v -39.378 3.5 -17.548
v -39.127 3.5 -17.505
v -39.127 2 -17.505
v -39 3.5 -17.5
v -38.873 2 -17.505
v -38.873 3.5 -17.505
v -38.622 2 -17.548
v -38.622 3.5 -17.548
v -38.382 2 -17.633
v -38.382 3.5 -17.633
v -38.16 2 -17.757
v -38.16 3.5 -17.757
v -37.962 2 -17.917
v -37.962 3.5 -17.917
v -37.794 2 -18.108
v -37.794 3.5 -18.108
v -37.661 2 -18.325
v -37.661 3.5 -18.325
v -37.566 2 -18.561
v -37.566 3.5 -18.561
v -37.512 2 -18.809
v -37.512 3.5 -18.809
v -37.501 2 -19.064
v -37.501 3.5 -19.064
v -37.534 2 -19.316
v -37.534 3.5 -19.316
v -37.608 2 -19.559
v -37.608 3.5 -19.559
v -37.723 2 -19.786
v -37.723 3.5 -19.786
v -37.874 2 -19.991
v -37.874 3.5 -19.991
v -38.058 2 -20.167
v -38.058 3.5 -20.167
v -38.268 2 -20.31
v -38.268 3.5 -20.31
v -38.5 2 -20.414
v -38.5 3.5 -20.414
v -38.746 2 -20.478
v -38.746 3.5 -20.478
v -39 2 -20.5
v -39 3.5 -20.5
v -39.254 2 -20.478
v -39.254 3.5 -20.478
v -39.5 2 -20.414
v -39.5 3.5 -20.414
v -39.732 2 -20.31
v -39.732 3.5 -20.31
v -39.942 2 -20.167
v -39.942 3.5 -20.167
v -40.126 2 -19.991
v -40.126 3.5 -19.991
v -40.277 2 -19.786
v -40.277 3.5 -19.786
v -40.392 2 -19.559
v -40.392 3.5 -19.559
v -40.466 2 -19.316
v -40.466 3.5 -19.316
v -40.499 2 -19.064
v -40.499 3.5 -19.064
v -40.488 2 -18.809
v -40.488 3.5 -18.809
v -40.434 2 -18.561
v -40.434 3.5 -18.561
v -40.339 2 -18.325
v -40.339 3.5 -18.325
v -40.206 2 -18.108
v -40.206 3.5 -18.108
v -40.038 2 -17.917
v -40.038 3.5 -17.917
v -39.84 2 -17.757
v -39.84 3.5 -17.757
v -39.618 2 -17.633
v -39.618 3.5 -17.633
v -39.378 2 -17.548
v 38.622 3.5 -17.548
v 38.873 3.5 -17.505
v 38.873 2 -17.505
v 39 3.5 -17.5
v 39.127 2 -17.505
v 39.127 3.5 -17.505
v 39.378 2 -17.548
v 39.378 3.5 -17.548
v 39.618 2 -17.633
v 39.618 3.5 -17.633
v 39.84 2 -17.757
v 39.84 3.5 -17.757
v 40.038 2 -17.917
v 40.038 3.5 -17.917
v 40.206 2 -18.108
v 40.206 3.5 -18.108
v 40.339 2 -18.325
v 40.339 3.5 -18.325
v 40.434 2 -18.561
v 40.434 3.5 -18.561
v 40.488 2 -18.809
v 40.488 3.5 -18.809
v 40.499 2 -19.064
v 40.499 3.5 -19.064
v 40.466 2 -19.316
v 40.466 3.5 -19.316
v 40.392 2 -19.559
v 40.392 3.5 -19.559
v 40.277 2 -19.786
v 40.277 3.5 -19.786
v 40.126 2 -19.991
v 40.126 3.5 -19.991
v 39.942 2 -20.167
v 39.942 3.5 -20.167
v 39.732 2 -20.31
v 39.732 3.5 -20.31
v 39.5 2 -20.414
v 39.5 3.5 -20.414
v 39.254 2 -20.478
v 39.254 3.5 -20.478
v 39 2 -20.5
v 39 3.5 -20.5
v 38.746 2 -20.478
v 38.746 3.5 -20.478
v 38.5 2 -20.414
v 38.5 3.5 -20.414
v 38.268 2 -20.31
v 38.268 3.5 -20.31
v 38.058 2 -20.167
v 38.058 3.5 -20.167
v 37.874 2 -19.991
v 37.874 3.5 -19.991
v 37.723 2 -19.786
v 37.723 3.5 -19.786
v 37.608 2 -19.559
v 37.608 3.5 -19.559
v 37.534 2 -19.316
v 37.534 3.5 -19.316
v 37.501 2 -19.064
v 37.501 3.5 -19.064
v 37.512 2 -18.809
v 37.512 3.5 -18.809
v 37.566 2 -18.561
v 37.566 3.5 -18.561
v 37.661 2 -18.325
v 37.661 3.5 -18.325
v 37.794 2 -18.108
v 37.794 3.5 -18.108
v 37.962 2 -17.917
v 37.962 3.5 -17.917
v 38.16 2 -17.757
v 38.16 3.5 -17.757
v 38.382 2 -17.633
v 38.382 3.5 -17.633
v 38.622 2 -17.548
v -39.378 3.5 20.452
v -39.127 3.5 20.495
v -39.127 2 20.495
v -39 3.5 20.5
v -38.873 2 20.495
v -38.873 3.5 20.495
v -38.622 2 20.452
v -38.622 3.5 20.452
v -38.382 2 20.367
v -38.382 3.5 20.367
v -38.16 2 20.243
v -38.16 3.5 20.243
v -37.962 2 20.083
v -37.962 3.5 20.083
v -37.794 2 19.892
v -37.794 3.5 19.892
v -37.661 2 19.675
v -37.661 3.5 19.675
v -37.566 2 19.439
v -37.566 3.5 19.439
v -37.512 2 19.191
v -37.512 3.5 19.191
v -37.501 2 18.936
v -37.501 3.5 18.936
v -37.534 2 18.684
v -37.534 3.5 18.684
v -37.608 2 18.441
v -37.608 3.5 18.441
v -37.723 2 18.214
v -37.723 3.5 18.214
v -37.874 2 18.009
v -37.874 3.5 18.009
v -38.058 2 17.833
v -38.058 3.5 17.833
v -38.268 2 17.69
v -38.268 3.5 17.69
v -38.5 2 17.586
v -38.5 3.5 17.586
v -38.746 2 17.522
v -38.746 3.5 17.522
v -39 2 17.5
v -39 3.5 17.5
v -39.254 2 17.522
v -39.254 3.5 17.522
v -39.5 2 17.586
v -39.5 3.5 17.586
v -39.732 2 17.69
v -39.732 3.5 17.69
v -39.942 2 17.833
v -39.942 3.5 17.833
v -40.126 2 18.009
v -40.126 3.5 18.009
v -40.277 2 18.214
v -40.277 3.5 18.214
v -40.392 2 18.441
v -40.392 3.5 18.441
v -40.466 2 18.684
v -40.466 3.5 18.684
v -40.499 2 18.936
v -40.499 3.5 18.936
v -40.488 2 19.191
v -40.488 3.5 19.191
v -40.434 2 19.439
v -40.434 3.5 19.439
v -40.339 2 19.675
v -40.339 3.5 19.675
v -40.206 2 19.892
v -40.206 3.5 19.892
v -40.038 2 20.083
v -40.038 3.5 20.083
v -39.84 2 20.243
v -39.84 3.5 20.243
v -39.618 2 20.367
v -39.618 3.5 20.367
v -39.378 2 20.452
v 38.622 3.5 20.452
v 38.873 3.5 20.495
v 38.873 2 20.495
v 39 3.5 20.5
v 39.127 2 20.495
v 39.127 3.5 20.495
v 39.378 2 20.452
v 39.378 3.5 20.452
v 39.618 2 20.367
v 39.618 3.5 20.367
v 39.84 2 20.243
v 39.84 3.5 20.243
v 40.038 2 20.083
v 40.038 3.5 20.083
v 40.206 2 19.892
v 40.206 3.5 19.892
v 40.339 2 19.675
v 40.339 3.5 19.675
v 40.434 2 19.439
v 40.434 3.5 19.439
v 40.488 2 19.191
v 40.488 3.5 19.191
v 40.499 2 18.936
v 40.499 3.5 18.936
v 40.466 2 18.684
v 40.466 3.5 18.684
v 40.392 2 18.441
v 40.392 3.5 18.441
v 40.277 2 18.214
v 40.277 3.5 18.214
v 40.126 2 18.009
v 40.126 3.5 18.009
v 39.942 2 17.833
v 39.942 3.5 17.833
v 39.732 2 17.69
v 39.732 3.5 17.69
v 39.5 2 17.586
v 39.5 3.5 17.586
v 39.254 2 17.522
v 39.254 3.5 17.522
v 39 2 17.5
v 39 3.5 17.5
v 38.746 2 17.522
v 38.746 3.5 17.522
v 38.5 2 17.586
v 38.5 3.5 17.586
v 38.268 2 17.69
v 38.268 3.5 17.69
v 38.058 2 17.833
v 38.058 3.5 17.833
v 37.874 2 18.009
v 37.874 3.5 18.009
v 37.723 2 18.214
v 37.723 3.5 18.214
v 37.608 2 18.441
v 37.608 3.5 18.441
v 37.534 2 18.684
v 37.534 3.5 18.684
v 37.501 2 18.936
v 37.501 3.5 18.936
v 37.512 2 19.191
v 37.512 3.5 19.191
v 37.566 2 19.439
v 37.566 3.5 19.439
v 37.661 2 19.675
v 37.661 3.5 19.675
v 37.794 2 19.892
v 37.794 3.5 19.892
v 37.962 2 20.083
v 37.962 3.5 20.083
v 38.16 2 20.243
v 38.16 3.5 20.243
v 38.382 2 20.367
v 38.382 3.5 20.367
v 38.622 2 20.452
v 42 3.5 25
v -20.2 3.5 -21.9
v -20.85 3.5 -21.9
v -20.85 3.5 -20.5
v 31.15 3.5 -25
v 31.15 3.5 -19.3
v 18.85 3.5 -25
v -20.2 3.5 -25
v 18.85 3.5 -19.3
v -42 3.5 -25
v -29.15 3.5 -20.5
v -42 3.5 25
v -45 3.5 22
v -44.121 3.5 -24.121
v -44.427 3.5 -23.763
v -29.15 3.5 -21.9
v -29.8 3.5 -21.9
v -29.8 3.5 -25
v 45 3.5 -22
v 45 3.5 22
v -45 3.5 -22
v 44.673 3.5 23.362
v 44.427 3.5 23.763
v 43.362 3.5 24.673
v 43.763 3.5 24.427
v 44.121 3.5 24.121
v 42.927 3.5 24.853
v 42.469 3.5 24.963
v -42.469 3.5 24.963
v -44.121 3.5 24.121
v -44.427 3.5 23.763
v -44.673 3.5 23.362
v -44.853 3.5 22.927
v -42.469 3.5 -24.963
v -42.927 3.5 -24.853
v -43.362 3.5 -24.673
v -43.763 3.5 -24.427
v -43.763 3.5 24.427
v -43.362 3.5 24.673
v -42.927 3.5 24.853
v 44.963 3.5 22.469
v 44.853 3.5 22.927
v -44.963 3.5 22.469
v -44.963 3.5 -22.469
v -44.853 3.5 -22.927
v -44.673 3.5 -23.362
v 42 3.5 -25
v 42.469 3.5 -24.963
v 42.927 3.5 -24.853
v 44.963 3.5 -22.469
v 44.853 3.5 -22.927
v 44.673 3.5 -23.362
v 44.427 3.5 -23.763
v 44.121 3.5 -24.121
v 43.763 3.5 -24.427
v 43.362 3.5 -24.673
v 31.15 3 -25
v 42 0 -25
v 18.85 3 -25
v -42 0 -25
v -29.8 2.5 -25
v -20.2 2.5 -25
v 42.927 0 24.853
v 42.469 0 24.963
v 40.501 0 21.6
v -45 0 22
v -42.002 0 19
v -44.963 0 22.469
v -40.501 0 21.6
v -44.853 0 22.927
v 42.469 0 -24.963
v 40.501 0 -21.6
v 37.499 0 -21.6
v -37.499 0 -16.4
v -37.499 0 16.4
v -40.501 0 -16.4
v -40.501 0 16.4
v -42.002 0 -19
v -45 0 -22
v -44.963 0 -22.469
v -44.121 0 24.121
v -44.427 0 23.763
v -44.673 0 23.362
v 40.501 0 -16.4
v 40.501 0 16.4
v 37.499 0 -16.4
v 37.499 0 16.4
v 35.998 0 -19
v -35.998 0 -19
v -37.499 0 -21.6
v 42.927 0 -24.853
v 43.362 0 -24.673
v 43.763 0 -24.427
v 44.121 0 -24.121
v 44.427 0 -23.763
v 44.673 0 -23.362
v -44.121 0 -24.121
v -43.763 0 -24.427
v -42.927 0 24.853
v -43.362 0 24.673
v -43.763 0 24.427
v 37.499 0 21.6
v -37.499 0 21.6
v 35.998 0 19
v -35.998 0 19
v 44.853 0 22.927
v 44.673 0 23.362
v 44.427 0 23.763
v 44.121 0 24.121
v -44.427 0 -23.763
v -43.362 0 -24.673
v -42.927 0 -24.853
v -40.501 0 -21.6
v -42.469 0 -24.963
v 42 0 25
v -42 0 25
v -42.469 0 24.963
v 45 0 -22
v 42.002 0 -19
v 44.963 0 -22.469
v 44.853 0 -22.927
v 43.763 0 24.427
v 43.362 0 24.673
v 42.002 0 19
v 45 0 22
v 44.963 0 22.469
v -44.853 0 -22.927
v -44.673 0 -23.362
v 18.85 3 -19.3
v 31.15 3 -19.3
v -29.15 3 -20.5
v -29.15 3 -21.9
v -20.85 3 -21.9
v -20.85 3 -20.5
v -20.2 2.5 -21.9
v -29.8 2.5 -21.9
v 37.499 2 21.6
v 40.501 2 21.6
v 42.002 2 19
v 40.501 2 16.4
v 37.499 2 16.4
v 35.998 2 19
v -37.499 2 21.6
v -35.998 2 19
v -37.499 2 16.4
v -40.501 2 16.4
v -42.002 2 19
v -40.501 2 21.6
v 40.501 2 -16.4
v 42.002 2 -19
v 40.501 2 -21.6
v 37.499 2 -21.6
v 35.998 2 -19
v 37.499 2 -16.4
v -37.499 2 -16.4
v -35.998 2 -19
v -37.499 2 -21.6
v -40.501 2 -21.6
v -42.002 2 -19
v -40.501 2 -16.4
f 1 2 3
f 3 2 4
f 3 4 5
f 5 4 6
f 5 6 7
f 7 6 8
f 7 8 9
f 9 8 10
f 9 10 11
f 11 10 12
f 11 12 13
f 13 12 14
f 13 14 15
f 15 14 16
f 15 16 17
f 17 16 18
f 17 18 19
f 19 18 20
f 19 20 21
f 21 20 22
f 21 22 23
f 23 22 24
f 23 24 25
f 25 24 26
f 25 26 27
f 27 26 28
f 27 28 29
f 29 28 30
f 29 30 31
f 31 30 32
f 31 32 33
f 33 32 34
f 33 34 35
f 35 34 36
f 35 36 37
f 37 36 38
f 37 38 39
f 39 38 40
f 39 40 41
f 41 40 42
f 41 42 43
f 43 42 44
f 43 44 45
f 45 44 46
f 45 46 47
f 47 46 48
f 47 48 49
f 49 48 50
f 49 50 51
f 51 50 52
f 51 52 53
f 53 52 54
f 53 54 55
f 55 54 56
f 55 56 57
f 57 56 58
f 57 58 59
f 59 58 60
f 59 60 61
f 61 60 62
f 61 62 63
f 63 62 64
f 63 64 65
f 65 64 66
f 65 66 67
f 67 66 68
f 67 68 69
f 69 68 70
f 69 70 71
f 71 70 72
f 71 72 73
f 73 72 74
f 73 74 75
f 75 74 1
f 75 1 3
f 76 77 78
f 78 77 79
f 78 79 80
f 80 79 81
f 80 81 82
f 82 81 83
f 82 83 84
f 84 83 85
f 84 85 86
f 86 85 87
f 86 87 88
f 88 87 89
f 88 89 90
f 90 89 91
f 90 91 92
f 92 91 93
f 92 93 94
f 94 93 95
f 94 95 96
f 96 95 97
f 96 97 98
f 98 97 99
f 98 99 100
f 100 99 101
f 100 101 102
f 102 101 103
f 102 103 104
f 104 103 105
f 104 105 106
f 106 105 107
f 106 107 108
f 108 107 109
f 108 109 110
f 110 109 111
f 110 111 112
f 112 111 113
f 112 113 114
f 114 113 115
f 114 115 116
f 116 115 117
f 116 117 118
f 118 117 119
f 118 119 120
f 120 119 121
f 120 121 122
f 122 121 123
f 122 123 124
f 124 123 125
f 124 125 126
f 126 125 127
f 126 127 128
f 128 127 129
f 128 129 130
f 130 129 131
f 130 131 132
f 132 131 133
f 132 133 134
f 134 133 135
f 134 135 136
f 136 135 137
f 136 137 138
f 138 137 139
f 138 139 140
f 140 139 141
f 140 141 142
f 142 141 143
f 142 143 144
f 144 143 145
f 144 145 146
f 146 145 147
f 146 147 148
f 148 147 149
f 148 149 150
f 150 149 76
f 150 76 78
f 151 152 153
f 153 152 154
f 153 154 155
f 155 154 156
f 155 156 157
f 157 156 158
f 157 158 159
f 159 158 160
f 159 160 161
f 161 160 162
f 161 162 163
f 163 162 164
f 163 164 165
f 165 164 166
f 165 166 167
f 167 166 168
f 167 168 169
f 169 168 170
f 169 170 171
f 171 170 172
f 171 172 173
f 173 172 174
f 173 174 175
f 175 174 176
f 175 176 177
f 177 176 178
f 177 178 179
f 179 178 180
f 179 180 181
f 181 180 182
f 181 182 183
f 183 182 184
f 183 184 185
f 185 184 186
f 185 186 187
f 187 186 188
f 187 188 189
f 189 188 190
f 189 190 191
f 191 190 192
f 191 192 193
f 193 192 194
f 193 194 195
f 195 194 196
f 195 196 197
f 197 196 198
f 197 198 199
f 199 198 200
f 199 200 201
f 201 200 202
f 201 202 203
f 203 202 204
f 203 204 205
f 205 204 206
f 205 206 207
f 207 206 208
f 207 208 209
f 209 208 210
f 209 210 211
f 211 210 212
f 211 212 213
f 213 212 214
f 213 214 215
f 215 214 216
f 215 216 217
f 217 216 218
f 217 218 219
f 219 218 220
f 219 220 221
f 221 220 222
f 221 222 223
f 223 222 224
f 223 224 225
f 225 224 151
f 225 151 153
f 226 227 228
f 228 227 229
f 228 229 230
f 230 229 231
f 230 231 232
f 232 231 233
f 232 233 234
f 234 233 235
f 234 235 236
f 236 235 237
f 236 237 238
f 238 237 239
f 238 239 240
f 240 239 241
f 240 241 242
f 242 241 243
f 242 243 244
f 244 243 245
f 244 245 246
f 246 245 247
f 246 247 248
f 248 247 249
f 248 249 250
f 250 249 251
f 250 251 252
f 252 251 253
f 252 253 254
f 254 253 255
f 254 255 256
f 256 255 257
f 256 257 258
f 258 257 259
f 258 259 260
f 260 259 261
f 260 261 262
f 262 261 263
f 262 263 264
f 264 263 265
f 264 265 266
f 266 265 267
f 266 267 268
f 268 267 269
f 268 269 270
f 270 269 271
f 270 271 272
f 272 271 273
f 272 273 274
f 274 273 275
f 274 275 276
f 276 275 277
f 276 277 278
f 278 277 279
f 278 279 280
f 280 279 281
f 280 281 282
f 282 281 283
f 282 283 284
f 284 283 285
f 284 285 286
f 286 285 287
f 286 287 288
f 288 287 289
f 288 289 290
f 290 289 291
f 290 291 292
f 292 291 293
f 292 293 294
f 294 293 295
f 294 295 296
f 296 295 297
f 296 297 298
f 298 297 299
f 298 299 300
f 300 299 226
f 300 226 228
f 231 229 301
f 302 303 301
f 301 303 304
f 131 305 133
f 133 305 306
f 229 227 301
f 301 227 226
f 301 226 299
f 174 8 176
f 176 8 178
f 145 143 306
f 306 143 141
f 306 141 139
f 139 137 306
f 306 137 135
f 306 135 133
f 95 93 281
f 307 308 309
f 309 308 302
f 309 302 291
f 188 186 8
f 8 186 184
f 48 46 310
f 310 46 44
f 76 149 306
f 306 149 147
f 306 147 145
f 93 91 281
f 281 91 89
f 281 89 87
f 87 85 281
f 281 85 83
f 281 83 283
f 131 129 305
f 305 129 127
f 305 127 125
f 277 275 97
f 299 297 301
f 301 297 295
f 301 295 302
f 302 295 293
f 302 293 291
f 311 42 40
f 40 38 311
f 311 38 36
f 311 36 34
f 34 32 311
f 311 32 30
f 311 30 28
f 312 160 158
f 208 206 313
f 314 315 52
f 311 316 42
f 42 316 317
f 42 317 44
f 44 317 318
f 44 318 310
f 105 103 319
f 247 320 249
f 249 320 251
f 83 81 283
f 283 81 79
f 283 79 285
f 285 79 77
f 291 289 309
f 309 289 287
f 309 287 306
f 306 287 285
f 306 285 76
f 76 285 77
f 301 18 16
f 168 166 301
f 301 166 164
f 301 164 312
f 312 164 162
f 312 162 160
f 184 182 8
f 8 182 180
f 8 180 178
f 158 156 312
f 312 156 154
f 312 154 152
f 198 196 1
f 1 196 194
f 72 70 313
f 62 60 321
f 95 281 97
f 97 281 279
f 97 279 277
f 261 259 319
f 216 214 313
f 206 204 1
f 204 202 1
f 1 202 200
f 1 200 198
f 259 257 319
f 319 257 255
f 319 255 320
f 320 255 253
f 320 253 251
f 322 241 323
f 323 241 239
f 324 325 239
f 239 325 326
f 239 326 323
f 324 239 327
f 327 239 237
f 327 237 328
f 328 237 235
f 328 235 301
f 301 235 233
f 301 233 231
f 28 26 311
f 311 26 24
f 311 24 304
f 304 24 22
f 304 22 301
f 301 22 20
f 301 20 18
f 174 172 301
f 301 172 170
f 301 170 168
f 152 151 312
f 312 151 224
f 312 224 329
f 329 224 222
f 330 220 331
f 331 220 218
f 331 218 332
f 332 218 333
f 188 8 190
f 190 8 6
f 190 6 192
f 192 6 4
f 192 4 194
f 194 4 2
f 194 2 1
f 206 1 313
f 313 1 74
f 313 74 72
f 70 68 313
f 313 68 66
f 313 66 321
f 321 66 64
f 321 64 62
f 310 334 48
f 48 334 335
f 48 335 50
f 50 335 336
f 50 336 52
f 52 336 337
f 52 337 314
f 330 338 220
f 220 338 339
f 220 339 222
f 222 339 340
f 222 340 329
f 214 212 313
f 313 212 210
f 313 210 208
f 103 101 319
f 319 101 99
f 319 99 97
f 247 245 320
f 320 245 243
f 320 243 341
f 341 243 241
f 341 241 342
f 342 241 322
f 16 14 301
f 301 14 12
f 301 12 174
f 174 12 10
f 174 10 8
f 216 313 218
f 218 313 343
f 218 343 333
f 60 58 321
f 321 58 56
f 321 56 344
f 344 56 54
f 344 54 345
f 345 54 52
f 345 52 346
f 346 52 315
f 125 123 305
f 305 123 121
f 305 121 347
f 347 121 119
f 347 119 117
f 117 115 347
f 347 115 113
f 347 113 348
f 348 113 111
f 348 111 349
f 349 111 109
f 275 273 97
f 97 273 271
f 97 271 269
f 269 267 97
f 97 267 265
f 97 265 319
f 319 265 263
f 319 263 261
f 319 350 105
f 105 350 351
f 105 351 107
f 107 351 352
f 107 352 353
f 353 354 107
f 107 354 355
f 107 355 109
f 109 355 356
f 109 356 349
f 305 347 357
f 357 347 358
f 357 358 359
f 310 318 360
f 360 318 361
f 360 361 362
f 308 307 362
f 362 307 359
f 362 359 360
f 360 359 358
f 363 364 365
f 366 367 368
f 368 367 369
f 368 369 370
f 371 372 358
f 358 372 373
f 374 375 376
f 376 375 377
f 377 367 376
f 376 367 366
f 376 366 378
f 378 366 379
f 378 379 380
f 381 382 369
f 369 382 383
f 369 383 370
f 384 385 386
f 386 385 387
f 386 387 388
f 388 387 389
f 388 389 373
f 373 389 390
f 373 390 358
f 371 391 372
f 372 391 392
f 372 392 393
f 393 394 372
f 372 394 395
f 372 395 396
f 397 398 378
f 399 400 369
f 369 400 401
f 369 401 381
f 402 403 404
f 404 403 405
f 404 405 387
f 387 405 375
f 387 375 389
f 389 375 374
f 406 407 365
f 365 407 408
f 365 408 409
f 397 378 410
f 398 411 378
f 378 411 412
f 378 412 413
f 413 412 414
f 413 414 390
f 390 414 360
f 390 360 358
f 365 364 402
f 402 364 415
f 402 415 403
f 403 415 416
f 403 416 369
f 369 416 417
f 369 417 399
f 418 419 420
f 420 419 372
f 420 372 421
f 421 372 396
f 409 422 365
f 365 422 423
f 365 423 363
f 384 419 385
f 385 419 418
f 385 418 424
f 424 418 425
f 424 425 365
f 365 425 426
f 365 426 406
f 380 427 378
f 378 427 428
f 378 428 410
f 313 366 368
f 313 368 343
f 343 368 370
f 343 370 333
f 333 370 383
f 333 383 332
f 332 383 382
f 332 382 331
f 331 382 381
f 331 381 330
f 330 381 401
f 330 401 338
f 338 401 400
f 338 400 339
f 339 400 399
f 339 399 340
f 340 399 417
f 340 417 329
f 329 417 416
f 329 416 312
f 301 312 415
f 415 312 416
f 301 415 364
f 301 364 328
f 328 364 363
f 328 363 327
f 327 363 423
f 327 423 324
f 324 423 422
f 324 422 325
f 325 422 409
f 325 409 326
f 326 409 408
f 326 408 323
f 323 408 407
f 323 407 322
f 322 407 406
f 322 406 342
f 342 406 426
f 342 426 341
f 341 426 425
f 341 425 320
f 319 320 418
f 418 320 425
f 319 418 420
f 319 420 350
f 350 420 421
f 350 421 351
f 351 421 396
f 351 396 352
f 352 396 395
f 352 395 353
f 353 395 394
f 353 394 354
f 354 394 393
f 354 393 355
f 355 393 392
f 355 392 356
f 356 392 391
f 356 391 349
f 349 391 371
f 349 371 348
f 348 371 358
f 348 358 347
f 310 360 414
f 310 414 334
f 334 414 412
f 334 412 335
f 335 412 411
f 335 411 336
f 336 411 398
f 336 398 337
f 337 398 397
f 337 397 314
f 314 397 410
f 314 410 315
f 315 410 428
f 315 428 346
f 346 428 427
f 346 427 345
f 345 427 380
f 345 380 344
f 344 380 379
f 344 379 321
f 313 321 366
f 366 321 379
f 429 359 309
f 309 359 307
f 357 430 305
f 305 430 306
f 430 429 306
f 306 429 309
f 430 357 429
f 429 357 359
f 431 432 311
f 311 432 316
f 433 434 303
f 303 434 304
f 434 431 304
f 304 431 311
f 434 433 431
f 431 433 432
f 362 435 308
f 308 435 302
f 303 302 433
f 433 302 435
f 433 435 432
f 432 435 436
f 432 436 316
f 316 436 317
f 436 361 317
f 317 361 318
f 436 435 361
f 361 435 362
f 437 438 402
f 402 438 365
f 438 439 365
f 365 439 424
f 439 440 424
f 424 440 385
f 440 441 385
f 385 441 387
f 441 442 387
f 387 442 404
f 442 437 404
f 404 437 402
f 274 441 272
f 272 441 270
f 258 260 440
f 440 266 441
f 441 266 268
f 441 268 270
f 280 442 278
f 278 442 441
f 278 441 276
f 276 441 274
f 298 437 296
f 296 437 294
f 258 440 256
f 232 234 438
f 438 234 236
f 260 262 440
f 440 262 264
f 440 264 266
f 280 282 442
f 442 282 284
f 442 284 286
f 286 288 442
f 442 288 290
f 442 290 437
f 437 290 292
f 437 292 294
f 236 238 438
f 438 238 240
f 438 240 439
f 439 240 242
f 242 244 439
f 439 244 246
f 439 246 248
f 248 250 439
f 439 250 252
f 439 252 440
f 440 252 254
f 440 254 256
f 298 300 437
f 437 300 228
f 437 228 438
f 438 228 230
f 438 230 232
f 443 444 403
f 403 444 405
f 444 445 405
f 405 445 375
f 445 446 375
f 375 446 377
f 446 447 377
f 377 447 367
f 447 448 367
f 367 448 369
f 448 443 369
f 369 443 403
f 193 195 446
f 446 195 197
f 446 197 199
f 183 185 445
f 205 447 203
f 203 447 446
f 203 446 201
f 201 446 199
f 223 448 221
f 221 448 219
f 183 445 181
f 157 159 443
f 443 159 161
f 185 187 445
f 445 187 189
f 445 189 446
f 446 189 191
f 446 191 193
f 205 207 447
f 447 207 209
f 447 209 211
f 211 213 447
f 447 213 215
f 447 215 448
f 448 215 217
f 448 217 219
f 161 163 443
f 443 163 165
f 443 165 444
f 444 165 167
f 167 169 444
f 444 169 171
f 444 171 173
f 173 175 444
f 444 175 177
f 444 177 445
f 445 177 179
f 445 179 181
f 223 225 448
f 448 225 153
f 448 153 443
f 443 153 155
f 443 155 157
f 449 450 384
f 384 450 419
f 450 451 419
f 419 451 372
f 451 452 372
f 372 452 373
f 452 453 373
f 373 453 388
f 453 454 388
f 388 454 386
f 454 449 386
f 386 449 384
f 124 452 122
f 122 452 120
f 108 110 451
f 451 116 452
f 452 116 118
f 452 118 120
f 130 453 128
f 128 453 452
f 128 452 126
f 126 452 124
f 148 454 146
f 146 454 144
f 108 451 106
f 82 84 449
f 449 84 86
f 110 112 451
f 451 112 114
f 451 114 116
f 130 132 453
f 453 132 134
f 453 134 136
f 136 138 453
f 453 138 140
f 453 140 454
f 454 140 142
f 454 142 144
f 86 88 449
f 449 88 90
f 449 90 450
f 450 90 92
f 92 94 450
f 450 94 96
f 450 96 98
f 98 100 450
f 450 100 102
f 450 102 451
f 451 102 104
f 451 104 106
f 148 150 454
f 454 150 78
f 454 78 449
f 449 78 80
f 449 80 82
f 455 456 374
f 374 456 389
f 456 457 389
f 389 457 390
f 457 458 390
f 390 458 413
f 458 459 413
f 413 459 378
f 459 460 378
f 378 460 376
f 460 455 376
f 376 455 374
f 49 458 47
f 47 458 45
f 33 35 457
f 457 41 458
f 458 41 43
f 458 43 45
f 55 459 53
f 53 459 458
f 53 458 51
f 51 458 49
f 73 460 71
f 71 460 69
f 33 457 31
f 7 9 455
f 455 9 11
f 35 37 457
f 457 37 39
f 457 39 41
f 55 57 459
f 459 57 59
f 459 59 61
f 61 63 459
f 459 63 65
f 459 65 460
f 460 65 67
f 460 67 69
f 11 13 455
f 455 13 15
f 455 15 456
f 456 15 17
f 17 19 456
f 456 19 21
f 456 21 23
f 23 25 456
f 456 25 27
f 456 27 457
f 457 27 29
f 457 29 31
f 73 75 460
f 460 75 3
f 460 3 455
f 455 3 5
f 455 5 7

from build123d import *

# Parameters (mm, degrees)
SKETCH_1_R          = 1.5
EXTRUDE_1_DEPTH     = 3.5
SKETCH_2_W          = 8.3
SKETCH_2_H          = 1.4
SKETCH_2_W_2        = 12.3
SKETCH_2_H_2        = 5.7
CUT_EXTRUDE_1_DEPTH = 0.5
SKETCH_2_3_W        = 9.6
SKETCH_2_3_H        = 3.1
CUT_EXTRUDE_2_DEPTH = 1
CUT_EXTRUDE_3_DEPTH = 2


with BuildPart() as part:
    # 草图1 → 凸台-拉伸1 (new body)
    with BuildSketch(Plane(origin=(0, 0, 0), x_dir=(1, 0, 0), z_dir=(0, 1, 0))):
        with BuildLine():
            Line((-42, -25), (42, -25))
            ThreePointArc((42, -25), (44.121320344, -24.121320344), (45, -22))
            Line((45, -22), (45, 22))
            ThreePointArc((45, 22), (44.121320344, 24.121320344), (42, 25))
            Line((42, 25), (-42, 25))
            ThreePointArc((-42, 25), (-44.121320344, 24.121320344), (-45, 22))
            Line((-45, 22), (-45, -22))
            ThreePointArc((-45, -22), (-44.121320344, -24.121320344), (-42, -25))
        make_face()
        with Locations((-39, 19)):
            Circle(SKETCH_1_R, mode=Mode.SUBTRACT)
        with Locations((39, 19)):
            Circle(SKETCH_1_R, mode=Mode.SUBTRACT)
        with Locations((-39, -19)):
            Circle(SKETCH_1_R, mode=Mode.SUBTRACT)
        with Locations((39, -19)):
            Circle(SKETCH_1_R, mode=Mode.SUBTRACT)
    extrude(amount=EXTRUDE_1_DEPTH)

    # 草图2 → 切除-拉伸1 (cut)
    with BuildSketch(Plane(origin=(0, 3.5, 0), x_dir=(1, 0, 0), z_dir=(0, 1, 0))):
        with Locations((-25, 21.2)):
            Rectangle(SKETCH_2_W, SKETCH_2_H)
        with Locations((25, 22.15)):
            Rectangle(SKETCH_2_W_2, SKETCH_2_H_2)
    extrude(amount=-CUT_EXTRUDE_1_DEPTH, mode=Mode.SUBTRACT)

    # 草图2<3> → 切除-拉伸2 (cut)
    with BuildSketch(Plane(origin=(0, 3.5, 0), x_dir=(1, 0, 0), z_dir=(0, 1, 0))):
        with Locations((-25, 23.45)):
            Rectangle(SKETCH_2_3_W, SKETCH_2_3_H)
    extrude(amount=-CUT_EXTRUDE_2_DEPTH, mode=Mode.SUBTRACT)

    # 草图3 → 切除-拉伸3 (cut)
    with BuildSketch(Plane.XZ):
        Polygon((-37.4988893, 21.6), (-40.5011107, 21.6), (-42.0022214, 19), (-40.5011107, 16.4), (-37.4988893, 16.4), (-35.9977786, 19), align=None)
        Polygon((-37.4988893, -16.4), (-40.5011107, -16.4), (-42.0022214, -19), (-40.5011107, -21.6), (-37.4988893, -21.6), (-35.9977786, -19), align=None)
        Polygon((40.5011107, -16.4), (37.4988893, -16.4), (35.9977786, -19), (37.4988893, -21.6), (40.5011107, -21.6), (42.0022214, -19), align=None)
        Polygon((37.4988893, 21.6), (35.9977786, 19), (37.4988893, 16.4), (40.5011107, 16.4), (42.0022214, 19), (40.5011107, 21.6), align=None)
    extrude(amount=-CUT_EXTRUDE_3_DEPTH, mode=Mode.SUBTRACT)


solid = part.part
